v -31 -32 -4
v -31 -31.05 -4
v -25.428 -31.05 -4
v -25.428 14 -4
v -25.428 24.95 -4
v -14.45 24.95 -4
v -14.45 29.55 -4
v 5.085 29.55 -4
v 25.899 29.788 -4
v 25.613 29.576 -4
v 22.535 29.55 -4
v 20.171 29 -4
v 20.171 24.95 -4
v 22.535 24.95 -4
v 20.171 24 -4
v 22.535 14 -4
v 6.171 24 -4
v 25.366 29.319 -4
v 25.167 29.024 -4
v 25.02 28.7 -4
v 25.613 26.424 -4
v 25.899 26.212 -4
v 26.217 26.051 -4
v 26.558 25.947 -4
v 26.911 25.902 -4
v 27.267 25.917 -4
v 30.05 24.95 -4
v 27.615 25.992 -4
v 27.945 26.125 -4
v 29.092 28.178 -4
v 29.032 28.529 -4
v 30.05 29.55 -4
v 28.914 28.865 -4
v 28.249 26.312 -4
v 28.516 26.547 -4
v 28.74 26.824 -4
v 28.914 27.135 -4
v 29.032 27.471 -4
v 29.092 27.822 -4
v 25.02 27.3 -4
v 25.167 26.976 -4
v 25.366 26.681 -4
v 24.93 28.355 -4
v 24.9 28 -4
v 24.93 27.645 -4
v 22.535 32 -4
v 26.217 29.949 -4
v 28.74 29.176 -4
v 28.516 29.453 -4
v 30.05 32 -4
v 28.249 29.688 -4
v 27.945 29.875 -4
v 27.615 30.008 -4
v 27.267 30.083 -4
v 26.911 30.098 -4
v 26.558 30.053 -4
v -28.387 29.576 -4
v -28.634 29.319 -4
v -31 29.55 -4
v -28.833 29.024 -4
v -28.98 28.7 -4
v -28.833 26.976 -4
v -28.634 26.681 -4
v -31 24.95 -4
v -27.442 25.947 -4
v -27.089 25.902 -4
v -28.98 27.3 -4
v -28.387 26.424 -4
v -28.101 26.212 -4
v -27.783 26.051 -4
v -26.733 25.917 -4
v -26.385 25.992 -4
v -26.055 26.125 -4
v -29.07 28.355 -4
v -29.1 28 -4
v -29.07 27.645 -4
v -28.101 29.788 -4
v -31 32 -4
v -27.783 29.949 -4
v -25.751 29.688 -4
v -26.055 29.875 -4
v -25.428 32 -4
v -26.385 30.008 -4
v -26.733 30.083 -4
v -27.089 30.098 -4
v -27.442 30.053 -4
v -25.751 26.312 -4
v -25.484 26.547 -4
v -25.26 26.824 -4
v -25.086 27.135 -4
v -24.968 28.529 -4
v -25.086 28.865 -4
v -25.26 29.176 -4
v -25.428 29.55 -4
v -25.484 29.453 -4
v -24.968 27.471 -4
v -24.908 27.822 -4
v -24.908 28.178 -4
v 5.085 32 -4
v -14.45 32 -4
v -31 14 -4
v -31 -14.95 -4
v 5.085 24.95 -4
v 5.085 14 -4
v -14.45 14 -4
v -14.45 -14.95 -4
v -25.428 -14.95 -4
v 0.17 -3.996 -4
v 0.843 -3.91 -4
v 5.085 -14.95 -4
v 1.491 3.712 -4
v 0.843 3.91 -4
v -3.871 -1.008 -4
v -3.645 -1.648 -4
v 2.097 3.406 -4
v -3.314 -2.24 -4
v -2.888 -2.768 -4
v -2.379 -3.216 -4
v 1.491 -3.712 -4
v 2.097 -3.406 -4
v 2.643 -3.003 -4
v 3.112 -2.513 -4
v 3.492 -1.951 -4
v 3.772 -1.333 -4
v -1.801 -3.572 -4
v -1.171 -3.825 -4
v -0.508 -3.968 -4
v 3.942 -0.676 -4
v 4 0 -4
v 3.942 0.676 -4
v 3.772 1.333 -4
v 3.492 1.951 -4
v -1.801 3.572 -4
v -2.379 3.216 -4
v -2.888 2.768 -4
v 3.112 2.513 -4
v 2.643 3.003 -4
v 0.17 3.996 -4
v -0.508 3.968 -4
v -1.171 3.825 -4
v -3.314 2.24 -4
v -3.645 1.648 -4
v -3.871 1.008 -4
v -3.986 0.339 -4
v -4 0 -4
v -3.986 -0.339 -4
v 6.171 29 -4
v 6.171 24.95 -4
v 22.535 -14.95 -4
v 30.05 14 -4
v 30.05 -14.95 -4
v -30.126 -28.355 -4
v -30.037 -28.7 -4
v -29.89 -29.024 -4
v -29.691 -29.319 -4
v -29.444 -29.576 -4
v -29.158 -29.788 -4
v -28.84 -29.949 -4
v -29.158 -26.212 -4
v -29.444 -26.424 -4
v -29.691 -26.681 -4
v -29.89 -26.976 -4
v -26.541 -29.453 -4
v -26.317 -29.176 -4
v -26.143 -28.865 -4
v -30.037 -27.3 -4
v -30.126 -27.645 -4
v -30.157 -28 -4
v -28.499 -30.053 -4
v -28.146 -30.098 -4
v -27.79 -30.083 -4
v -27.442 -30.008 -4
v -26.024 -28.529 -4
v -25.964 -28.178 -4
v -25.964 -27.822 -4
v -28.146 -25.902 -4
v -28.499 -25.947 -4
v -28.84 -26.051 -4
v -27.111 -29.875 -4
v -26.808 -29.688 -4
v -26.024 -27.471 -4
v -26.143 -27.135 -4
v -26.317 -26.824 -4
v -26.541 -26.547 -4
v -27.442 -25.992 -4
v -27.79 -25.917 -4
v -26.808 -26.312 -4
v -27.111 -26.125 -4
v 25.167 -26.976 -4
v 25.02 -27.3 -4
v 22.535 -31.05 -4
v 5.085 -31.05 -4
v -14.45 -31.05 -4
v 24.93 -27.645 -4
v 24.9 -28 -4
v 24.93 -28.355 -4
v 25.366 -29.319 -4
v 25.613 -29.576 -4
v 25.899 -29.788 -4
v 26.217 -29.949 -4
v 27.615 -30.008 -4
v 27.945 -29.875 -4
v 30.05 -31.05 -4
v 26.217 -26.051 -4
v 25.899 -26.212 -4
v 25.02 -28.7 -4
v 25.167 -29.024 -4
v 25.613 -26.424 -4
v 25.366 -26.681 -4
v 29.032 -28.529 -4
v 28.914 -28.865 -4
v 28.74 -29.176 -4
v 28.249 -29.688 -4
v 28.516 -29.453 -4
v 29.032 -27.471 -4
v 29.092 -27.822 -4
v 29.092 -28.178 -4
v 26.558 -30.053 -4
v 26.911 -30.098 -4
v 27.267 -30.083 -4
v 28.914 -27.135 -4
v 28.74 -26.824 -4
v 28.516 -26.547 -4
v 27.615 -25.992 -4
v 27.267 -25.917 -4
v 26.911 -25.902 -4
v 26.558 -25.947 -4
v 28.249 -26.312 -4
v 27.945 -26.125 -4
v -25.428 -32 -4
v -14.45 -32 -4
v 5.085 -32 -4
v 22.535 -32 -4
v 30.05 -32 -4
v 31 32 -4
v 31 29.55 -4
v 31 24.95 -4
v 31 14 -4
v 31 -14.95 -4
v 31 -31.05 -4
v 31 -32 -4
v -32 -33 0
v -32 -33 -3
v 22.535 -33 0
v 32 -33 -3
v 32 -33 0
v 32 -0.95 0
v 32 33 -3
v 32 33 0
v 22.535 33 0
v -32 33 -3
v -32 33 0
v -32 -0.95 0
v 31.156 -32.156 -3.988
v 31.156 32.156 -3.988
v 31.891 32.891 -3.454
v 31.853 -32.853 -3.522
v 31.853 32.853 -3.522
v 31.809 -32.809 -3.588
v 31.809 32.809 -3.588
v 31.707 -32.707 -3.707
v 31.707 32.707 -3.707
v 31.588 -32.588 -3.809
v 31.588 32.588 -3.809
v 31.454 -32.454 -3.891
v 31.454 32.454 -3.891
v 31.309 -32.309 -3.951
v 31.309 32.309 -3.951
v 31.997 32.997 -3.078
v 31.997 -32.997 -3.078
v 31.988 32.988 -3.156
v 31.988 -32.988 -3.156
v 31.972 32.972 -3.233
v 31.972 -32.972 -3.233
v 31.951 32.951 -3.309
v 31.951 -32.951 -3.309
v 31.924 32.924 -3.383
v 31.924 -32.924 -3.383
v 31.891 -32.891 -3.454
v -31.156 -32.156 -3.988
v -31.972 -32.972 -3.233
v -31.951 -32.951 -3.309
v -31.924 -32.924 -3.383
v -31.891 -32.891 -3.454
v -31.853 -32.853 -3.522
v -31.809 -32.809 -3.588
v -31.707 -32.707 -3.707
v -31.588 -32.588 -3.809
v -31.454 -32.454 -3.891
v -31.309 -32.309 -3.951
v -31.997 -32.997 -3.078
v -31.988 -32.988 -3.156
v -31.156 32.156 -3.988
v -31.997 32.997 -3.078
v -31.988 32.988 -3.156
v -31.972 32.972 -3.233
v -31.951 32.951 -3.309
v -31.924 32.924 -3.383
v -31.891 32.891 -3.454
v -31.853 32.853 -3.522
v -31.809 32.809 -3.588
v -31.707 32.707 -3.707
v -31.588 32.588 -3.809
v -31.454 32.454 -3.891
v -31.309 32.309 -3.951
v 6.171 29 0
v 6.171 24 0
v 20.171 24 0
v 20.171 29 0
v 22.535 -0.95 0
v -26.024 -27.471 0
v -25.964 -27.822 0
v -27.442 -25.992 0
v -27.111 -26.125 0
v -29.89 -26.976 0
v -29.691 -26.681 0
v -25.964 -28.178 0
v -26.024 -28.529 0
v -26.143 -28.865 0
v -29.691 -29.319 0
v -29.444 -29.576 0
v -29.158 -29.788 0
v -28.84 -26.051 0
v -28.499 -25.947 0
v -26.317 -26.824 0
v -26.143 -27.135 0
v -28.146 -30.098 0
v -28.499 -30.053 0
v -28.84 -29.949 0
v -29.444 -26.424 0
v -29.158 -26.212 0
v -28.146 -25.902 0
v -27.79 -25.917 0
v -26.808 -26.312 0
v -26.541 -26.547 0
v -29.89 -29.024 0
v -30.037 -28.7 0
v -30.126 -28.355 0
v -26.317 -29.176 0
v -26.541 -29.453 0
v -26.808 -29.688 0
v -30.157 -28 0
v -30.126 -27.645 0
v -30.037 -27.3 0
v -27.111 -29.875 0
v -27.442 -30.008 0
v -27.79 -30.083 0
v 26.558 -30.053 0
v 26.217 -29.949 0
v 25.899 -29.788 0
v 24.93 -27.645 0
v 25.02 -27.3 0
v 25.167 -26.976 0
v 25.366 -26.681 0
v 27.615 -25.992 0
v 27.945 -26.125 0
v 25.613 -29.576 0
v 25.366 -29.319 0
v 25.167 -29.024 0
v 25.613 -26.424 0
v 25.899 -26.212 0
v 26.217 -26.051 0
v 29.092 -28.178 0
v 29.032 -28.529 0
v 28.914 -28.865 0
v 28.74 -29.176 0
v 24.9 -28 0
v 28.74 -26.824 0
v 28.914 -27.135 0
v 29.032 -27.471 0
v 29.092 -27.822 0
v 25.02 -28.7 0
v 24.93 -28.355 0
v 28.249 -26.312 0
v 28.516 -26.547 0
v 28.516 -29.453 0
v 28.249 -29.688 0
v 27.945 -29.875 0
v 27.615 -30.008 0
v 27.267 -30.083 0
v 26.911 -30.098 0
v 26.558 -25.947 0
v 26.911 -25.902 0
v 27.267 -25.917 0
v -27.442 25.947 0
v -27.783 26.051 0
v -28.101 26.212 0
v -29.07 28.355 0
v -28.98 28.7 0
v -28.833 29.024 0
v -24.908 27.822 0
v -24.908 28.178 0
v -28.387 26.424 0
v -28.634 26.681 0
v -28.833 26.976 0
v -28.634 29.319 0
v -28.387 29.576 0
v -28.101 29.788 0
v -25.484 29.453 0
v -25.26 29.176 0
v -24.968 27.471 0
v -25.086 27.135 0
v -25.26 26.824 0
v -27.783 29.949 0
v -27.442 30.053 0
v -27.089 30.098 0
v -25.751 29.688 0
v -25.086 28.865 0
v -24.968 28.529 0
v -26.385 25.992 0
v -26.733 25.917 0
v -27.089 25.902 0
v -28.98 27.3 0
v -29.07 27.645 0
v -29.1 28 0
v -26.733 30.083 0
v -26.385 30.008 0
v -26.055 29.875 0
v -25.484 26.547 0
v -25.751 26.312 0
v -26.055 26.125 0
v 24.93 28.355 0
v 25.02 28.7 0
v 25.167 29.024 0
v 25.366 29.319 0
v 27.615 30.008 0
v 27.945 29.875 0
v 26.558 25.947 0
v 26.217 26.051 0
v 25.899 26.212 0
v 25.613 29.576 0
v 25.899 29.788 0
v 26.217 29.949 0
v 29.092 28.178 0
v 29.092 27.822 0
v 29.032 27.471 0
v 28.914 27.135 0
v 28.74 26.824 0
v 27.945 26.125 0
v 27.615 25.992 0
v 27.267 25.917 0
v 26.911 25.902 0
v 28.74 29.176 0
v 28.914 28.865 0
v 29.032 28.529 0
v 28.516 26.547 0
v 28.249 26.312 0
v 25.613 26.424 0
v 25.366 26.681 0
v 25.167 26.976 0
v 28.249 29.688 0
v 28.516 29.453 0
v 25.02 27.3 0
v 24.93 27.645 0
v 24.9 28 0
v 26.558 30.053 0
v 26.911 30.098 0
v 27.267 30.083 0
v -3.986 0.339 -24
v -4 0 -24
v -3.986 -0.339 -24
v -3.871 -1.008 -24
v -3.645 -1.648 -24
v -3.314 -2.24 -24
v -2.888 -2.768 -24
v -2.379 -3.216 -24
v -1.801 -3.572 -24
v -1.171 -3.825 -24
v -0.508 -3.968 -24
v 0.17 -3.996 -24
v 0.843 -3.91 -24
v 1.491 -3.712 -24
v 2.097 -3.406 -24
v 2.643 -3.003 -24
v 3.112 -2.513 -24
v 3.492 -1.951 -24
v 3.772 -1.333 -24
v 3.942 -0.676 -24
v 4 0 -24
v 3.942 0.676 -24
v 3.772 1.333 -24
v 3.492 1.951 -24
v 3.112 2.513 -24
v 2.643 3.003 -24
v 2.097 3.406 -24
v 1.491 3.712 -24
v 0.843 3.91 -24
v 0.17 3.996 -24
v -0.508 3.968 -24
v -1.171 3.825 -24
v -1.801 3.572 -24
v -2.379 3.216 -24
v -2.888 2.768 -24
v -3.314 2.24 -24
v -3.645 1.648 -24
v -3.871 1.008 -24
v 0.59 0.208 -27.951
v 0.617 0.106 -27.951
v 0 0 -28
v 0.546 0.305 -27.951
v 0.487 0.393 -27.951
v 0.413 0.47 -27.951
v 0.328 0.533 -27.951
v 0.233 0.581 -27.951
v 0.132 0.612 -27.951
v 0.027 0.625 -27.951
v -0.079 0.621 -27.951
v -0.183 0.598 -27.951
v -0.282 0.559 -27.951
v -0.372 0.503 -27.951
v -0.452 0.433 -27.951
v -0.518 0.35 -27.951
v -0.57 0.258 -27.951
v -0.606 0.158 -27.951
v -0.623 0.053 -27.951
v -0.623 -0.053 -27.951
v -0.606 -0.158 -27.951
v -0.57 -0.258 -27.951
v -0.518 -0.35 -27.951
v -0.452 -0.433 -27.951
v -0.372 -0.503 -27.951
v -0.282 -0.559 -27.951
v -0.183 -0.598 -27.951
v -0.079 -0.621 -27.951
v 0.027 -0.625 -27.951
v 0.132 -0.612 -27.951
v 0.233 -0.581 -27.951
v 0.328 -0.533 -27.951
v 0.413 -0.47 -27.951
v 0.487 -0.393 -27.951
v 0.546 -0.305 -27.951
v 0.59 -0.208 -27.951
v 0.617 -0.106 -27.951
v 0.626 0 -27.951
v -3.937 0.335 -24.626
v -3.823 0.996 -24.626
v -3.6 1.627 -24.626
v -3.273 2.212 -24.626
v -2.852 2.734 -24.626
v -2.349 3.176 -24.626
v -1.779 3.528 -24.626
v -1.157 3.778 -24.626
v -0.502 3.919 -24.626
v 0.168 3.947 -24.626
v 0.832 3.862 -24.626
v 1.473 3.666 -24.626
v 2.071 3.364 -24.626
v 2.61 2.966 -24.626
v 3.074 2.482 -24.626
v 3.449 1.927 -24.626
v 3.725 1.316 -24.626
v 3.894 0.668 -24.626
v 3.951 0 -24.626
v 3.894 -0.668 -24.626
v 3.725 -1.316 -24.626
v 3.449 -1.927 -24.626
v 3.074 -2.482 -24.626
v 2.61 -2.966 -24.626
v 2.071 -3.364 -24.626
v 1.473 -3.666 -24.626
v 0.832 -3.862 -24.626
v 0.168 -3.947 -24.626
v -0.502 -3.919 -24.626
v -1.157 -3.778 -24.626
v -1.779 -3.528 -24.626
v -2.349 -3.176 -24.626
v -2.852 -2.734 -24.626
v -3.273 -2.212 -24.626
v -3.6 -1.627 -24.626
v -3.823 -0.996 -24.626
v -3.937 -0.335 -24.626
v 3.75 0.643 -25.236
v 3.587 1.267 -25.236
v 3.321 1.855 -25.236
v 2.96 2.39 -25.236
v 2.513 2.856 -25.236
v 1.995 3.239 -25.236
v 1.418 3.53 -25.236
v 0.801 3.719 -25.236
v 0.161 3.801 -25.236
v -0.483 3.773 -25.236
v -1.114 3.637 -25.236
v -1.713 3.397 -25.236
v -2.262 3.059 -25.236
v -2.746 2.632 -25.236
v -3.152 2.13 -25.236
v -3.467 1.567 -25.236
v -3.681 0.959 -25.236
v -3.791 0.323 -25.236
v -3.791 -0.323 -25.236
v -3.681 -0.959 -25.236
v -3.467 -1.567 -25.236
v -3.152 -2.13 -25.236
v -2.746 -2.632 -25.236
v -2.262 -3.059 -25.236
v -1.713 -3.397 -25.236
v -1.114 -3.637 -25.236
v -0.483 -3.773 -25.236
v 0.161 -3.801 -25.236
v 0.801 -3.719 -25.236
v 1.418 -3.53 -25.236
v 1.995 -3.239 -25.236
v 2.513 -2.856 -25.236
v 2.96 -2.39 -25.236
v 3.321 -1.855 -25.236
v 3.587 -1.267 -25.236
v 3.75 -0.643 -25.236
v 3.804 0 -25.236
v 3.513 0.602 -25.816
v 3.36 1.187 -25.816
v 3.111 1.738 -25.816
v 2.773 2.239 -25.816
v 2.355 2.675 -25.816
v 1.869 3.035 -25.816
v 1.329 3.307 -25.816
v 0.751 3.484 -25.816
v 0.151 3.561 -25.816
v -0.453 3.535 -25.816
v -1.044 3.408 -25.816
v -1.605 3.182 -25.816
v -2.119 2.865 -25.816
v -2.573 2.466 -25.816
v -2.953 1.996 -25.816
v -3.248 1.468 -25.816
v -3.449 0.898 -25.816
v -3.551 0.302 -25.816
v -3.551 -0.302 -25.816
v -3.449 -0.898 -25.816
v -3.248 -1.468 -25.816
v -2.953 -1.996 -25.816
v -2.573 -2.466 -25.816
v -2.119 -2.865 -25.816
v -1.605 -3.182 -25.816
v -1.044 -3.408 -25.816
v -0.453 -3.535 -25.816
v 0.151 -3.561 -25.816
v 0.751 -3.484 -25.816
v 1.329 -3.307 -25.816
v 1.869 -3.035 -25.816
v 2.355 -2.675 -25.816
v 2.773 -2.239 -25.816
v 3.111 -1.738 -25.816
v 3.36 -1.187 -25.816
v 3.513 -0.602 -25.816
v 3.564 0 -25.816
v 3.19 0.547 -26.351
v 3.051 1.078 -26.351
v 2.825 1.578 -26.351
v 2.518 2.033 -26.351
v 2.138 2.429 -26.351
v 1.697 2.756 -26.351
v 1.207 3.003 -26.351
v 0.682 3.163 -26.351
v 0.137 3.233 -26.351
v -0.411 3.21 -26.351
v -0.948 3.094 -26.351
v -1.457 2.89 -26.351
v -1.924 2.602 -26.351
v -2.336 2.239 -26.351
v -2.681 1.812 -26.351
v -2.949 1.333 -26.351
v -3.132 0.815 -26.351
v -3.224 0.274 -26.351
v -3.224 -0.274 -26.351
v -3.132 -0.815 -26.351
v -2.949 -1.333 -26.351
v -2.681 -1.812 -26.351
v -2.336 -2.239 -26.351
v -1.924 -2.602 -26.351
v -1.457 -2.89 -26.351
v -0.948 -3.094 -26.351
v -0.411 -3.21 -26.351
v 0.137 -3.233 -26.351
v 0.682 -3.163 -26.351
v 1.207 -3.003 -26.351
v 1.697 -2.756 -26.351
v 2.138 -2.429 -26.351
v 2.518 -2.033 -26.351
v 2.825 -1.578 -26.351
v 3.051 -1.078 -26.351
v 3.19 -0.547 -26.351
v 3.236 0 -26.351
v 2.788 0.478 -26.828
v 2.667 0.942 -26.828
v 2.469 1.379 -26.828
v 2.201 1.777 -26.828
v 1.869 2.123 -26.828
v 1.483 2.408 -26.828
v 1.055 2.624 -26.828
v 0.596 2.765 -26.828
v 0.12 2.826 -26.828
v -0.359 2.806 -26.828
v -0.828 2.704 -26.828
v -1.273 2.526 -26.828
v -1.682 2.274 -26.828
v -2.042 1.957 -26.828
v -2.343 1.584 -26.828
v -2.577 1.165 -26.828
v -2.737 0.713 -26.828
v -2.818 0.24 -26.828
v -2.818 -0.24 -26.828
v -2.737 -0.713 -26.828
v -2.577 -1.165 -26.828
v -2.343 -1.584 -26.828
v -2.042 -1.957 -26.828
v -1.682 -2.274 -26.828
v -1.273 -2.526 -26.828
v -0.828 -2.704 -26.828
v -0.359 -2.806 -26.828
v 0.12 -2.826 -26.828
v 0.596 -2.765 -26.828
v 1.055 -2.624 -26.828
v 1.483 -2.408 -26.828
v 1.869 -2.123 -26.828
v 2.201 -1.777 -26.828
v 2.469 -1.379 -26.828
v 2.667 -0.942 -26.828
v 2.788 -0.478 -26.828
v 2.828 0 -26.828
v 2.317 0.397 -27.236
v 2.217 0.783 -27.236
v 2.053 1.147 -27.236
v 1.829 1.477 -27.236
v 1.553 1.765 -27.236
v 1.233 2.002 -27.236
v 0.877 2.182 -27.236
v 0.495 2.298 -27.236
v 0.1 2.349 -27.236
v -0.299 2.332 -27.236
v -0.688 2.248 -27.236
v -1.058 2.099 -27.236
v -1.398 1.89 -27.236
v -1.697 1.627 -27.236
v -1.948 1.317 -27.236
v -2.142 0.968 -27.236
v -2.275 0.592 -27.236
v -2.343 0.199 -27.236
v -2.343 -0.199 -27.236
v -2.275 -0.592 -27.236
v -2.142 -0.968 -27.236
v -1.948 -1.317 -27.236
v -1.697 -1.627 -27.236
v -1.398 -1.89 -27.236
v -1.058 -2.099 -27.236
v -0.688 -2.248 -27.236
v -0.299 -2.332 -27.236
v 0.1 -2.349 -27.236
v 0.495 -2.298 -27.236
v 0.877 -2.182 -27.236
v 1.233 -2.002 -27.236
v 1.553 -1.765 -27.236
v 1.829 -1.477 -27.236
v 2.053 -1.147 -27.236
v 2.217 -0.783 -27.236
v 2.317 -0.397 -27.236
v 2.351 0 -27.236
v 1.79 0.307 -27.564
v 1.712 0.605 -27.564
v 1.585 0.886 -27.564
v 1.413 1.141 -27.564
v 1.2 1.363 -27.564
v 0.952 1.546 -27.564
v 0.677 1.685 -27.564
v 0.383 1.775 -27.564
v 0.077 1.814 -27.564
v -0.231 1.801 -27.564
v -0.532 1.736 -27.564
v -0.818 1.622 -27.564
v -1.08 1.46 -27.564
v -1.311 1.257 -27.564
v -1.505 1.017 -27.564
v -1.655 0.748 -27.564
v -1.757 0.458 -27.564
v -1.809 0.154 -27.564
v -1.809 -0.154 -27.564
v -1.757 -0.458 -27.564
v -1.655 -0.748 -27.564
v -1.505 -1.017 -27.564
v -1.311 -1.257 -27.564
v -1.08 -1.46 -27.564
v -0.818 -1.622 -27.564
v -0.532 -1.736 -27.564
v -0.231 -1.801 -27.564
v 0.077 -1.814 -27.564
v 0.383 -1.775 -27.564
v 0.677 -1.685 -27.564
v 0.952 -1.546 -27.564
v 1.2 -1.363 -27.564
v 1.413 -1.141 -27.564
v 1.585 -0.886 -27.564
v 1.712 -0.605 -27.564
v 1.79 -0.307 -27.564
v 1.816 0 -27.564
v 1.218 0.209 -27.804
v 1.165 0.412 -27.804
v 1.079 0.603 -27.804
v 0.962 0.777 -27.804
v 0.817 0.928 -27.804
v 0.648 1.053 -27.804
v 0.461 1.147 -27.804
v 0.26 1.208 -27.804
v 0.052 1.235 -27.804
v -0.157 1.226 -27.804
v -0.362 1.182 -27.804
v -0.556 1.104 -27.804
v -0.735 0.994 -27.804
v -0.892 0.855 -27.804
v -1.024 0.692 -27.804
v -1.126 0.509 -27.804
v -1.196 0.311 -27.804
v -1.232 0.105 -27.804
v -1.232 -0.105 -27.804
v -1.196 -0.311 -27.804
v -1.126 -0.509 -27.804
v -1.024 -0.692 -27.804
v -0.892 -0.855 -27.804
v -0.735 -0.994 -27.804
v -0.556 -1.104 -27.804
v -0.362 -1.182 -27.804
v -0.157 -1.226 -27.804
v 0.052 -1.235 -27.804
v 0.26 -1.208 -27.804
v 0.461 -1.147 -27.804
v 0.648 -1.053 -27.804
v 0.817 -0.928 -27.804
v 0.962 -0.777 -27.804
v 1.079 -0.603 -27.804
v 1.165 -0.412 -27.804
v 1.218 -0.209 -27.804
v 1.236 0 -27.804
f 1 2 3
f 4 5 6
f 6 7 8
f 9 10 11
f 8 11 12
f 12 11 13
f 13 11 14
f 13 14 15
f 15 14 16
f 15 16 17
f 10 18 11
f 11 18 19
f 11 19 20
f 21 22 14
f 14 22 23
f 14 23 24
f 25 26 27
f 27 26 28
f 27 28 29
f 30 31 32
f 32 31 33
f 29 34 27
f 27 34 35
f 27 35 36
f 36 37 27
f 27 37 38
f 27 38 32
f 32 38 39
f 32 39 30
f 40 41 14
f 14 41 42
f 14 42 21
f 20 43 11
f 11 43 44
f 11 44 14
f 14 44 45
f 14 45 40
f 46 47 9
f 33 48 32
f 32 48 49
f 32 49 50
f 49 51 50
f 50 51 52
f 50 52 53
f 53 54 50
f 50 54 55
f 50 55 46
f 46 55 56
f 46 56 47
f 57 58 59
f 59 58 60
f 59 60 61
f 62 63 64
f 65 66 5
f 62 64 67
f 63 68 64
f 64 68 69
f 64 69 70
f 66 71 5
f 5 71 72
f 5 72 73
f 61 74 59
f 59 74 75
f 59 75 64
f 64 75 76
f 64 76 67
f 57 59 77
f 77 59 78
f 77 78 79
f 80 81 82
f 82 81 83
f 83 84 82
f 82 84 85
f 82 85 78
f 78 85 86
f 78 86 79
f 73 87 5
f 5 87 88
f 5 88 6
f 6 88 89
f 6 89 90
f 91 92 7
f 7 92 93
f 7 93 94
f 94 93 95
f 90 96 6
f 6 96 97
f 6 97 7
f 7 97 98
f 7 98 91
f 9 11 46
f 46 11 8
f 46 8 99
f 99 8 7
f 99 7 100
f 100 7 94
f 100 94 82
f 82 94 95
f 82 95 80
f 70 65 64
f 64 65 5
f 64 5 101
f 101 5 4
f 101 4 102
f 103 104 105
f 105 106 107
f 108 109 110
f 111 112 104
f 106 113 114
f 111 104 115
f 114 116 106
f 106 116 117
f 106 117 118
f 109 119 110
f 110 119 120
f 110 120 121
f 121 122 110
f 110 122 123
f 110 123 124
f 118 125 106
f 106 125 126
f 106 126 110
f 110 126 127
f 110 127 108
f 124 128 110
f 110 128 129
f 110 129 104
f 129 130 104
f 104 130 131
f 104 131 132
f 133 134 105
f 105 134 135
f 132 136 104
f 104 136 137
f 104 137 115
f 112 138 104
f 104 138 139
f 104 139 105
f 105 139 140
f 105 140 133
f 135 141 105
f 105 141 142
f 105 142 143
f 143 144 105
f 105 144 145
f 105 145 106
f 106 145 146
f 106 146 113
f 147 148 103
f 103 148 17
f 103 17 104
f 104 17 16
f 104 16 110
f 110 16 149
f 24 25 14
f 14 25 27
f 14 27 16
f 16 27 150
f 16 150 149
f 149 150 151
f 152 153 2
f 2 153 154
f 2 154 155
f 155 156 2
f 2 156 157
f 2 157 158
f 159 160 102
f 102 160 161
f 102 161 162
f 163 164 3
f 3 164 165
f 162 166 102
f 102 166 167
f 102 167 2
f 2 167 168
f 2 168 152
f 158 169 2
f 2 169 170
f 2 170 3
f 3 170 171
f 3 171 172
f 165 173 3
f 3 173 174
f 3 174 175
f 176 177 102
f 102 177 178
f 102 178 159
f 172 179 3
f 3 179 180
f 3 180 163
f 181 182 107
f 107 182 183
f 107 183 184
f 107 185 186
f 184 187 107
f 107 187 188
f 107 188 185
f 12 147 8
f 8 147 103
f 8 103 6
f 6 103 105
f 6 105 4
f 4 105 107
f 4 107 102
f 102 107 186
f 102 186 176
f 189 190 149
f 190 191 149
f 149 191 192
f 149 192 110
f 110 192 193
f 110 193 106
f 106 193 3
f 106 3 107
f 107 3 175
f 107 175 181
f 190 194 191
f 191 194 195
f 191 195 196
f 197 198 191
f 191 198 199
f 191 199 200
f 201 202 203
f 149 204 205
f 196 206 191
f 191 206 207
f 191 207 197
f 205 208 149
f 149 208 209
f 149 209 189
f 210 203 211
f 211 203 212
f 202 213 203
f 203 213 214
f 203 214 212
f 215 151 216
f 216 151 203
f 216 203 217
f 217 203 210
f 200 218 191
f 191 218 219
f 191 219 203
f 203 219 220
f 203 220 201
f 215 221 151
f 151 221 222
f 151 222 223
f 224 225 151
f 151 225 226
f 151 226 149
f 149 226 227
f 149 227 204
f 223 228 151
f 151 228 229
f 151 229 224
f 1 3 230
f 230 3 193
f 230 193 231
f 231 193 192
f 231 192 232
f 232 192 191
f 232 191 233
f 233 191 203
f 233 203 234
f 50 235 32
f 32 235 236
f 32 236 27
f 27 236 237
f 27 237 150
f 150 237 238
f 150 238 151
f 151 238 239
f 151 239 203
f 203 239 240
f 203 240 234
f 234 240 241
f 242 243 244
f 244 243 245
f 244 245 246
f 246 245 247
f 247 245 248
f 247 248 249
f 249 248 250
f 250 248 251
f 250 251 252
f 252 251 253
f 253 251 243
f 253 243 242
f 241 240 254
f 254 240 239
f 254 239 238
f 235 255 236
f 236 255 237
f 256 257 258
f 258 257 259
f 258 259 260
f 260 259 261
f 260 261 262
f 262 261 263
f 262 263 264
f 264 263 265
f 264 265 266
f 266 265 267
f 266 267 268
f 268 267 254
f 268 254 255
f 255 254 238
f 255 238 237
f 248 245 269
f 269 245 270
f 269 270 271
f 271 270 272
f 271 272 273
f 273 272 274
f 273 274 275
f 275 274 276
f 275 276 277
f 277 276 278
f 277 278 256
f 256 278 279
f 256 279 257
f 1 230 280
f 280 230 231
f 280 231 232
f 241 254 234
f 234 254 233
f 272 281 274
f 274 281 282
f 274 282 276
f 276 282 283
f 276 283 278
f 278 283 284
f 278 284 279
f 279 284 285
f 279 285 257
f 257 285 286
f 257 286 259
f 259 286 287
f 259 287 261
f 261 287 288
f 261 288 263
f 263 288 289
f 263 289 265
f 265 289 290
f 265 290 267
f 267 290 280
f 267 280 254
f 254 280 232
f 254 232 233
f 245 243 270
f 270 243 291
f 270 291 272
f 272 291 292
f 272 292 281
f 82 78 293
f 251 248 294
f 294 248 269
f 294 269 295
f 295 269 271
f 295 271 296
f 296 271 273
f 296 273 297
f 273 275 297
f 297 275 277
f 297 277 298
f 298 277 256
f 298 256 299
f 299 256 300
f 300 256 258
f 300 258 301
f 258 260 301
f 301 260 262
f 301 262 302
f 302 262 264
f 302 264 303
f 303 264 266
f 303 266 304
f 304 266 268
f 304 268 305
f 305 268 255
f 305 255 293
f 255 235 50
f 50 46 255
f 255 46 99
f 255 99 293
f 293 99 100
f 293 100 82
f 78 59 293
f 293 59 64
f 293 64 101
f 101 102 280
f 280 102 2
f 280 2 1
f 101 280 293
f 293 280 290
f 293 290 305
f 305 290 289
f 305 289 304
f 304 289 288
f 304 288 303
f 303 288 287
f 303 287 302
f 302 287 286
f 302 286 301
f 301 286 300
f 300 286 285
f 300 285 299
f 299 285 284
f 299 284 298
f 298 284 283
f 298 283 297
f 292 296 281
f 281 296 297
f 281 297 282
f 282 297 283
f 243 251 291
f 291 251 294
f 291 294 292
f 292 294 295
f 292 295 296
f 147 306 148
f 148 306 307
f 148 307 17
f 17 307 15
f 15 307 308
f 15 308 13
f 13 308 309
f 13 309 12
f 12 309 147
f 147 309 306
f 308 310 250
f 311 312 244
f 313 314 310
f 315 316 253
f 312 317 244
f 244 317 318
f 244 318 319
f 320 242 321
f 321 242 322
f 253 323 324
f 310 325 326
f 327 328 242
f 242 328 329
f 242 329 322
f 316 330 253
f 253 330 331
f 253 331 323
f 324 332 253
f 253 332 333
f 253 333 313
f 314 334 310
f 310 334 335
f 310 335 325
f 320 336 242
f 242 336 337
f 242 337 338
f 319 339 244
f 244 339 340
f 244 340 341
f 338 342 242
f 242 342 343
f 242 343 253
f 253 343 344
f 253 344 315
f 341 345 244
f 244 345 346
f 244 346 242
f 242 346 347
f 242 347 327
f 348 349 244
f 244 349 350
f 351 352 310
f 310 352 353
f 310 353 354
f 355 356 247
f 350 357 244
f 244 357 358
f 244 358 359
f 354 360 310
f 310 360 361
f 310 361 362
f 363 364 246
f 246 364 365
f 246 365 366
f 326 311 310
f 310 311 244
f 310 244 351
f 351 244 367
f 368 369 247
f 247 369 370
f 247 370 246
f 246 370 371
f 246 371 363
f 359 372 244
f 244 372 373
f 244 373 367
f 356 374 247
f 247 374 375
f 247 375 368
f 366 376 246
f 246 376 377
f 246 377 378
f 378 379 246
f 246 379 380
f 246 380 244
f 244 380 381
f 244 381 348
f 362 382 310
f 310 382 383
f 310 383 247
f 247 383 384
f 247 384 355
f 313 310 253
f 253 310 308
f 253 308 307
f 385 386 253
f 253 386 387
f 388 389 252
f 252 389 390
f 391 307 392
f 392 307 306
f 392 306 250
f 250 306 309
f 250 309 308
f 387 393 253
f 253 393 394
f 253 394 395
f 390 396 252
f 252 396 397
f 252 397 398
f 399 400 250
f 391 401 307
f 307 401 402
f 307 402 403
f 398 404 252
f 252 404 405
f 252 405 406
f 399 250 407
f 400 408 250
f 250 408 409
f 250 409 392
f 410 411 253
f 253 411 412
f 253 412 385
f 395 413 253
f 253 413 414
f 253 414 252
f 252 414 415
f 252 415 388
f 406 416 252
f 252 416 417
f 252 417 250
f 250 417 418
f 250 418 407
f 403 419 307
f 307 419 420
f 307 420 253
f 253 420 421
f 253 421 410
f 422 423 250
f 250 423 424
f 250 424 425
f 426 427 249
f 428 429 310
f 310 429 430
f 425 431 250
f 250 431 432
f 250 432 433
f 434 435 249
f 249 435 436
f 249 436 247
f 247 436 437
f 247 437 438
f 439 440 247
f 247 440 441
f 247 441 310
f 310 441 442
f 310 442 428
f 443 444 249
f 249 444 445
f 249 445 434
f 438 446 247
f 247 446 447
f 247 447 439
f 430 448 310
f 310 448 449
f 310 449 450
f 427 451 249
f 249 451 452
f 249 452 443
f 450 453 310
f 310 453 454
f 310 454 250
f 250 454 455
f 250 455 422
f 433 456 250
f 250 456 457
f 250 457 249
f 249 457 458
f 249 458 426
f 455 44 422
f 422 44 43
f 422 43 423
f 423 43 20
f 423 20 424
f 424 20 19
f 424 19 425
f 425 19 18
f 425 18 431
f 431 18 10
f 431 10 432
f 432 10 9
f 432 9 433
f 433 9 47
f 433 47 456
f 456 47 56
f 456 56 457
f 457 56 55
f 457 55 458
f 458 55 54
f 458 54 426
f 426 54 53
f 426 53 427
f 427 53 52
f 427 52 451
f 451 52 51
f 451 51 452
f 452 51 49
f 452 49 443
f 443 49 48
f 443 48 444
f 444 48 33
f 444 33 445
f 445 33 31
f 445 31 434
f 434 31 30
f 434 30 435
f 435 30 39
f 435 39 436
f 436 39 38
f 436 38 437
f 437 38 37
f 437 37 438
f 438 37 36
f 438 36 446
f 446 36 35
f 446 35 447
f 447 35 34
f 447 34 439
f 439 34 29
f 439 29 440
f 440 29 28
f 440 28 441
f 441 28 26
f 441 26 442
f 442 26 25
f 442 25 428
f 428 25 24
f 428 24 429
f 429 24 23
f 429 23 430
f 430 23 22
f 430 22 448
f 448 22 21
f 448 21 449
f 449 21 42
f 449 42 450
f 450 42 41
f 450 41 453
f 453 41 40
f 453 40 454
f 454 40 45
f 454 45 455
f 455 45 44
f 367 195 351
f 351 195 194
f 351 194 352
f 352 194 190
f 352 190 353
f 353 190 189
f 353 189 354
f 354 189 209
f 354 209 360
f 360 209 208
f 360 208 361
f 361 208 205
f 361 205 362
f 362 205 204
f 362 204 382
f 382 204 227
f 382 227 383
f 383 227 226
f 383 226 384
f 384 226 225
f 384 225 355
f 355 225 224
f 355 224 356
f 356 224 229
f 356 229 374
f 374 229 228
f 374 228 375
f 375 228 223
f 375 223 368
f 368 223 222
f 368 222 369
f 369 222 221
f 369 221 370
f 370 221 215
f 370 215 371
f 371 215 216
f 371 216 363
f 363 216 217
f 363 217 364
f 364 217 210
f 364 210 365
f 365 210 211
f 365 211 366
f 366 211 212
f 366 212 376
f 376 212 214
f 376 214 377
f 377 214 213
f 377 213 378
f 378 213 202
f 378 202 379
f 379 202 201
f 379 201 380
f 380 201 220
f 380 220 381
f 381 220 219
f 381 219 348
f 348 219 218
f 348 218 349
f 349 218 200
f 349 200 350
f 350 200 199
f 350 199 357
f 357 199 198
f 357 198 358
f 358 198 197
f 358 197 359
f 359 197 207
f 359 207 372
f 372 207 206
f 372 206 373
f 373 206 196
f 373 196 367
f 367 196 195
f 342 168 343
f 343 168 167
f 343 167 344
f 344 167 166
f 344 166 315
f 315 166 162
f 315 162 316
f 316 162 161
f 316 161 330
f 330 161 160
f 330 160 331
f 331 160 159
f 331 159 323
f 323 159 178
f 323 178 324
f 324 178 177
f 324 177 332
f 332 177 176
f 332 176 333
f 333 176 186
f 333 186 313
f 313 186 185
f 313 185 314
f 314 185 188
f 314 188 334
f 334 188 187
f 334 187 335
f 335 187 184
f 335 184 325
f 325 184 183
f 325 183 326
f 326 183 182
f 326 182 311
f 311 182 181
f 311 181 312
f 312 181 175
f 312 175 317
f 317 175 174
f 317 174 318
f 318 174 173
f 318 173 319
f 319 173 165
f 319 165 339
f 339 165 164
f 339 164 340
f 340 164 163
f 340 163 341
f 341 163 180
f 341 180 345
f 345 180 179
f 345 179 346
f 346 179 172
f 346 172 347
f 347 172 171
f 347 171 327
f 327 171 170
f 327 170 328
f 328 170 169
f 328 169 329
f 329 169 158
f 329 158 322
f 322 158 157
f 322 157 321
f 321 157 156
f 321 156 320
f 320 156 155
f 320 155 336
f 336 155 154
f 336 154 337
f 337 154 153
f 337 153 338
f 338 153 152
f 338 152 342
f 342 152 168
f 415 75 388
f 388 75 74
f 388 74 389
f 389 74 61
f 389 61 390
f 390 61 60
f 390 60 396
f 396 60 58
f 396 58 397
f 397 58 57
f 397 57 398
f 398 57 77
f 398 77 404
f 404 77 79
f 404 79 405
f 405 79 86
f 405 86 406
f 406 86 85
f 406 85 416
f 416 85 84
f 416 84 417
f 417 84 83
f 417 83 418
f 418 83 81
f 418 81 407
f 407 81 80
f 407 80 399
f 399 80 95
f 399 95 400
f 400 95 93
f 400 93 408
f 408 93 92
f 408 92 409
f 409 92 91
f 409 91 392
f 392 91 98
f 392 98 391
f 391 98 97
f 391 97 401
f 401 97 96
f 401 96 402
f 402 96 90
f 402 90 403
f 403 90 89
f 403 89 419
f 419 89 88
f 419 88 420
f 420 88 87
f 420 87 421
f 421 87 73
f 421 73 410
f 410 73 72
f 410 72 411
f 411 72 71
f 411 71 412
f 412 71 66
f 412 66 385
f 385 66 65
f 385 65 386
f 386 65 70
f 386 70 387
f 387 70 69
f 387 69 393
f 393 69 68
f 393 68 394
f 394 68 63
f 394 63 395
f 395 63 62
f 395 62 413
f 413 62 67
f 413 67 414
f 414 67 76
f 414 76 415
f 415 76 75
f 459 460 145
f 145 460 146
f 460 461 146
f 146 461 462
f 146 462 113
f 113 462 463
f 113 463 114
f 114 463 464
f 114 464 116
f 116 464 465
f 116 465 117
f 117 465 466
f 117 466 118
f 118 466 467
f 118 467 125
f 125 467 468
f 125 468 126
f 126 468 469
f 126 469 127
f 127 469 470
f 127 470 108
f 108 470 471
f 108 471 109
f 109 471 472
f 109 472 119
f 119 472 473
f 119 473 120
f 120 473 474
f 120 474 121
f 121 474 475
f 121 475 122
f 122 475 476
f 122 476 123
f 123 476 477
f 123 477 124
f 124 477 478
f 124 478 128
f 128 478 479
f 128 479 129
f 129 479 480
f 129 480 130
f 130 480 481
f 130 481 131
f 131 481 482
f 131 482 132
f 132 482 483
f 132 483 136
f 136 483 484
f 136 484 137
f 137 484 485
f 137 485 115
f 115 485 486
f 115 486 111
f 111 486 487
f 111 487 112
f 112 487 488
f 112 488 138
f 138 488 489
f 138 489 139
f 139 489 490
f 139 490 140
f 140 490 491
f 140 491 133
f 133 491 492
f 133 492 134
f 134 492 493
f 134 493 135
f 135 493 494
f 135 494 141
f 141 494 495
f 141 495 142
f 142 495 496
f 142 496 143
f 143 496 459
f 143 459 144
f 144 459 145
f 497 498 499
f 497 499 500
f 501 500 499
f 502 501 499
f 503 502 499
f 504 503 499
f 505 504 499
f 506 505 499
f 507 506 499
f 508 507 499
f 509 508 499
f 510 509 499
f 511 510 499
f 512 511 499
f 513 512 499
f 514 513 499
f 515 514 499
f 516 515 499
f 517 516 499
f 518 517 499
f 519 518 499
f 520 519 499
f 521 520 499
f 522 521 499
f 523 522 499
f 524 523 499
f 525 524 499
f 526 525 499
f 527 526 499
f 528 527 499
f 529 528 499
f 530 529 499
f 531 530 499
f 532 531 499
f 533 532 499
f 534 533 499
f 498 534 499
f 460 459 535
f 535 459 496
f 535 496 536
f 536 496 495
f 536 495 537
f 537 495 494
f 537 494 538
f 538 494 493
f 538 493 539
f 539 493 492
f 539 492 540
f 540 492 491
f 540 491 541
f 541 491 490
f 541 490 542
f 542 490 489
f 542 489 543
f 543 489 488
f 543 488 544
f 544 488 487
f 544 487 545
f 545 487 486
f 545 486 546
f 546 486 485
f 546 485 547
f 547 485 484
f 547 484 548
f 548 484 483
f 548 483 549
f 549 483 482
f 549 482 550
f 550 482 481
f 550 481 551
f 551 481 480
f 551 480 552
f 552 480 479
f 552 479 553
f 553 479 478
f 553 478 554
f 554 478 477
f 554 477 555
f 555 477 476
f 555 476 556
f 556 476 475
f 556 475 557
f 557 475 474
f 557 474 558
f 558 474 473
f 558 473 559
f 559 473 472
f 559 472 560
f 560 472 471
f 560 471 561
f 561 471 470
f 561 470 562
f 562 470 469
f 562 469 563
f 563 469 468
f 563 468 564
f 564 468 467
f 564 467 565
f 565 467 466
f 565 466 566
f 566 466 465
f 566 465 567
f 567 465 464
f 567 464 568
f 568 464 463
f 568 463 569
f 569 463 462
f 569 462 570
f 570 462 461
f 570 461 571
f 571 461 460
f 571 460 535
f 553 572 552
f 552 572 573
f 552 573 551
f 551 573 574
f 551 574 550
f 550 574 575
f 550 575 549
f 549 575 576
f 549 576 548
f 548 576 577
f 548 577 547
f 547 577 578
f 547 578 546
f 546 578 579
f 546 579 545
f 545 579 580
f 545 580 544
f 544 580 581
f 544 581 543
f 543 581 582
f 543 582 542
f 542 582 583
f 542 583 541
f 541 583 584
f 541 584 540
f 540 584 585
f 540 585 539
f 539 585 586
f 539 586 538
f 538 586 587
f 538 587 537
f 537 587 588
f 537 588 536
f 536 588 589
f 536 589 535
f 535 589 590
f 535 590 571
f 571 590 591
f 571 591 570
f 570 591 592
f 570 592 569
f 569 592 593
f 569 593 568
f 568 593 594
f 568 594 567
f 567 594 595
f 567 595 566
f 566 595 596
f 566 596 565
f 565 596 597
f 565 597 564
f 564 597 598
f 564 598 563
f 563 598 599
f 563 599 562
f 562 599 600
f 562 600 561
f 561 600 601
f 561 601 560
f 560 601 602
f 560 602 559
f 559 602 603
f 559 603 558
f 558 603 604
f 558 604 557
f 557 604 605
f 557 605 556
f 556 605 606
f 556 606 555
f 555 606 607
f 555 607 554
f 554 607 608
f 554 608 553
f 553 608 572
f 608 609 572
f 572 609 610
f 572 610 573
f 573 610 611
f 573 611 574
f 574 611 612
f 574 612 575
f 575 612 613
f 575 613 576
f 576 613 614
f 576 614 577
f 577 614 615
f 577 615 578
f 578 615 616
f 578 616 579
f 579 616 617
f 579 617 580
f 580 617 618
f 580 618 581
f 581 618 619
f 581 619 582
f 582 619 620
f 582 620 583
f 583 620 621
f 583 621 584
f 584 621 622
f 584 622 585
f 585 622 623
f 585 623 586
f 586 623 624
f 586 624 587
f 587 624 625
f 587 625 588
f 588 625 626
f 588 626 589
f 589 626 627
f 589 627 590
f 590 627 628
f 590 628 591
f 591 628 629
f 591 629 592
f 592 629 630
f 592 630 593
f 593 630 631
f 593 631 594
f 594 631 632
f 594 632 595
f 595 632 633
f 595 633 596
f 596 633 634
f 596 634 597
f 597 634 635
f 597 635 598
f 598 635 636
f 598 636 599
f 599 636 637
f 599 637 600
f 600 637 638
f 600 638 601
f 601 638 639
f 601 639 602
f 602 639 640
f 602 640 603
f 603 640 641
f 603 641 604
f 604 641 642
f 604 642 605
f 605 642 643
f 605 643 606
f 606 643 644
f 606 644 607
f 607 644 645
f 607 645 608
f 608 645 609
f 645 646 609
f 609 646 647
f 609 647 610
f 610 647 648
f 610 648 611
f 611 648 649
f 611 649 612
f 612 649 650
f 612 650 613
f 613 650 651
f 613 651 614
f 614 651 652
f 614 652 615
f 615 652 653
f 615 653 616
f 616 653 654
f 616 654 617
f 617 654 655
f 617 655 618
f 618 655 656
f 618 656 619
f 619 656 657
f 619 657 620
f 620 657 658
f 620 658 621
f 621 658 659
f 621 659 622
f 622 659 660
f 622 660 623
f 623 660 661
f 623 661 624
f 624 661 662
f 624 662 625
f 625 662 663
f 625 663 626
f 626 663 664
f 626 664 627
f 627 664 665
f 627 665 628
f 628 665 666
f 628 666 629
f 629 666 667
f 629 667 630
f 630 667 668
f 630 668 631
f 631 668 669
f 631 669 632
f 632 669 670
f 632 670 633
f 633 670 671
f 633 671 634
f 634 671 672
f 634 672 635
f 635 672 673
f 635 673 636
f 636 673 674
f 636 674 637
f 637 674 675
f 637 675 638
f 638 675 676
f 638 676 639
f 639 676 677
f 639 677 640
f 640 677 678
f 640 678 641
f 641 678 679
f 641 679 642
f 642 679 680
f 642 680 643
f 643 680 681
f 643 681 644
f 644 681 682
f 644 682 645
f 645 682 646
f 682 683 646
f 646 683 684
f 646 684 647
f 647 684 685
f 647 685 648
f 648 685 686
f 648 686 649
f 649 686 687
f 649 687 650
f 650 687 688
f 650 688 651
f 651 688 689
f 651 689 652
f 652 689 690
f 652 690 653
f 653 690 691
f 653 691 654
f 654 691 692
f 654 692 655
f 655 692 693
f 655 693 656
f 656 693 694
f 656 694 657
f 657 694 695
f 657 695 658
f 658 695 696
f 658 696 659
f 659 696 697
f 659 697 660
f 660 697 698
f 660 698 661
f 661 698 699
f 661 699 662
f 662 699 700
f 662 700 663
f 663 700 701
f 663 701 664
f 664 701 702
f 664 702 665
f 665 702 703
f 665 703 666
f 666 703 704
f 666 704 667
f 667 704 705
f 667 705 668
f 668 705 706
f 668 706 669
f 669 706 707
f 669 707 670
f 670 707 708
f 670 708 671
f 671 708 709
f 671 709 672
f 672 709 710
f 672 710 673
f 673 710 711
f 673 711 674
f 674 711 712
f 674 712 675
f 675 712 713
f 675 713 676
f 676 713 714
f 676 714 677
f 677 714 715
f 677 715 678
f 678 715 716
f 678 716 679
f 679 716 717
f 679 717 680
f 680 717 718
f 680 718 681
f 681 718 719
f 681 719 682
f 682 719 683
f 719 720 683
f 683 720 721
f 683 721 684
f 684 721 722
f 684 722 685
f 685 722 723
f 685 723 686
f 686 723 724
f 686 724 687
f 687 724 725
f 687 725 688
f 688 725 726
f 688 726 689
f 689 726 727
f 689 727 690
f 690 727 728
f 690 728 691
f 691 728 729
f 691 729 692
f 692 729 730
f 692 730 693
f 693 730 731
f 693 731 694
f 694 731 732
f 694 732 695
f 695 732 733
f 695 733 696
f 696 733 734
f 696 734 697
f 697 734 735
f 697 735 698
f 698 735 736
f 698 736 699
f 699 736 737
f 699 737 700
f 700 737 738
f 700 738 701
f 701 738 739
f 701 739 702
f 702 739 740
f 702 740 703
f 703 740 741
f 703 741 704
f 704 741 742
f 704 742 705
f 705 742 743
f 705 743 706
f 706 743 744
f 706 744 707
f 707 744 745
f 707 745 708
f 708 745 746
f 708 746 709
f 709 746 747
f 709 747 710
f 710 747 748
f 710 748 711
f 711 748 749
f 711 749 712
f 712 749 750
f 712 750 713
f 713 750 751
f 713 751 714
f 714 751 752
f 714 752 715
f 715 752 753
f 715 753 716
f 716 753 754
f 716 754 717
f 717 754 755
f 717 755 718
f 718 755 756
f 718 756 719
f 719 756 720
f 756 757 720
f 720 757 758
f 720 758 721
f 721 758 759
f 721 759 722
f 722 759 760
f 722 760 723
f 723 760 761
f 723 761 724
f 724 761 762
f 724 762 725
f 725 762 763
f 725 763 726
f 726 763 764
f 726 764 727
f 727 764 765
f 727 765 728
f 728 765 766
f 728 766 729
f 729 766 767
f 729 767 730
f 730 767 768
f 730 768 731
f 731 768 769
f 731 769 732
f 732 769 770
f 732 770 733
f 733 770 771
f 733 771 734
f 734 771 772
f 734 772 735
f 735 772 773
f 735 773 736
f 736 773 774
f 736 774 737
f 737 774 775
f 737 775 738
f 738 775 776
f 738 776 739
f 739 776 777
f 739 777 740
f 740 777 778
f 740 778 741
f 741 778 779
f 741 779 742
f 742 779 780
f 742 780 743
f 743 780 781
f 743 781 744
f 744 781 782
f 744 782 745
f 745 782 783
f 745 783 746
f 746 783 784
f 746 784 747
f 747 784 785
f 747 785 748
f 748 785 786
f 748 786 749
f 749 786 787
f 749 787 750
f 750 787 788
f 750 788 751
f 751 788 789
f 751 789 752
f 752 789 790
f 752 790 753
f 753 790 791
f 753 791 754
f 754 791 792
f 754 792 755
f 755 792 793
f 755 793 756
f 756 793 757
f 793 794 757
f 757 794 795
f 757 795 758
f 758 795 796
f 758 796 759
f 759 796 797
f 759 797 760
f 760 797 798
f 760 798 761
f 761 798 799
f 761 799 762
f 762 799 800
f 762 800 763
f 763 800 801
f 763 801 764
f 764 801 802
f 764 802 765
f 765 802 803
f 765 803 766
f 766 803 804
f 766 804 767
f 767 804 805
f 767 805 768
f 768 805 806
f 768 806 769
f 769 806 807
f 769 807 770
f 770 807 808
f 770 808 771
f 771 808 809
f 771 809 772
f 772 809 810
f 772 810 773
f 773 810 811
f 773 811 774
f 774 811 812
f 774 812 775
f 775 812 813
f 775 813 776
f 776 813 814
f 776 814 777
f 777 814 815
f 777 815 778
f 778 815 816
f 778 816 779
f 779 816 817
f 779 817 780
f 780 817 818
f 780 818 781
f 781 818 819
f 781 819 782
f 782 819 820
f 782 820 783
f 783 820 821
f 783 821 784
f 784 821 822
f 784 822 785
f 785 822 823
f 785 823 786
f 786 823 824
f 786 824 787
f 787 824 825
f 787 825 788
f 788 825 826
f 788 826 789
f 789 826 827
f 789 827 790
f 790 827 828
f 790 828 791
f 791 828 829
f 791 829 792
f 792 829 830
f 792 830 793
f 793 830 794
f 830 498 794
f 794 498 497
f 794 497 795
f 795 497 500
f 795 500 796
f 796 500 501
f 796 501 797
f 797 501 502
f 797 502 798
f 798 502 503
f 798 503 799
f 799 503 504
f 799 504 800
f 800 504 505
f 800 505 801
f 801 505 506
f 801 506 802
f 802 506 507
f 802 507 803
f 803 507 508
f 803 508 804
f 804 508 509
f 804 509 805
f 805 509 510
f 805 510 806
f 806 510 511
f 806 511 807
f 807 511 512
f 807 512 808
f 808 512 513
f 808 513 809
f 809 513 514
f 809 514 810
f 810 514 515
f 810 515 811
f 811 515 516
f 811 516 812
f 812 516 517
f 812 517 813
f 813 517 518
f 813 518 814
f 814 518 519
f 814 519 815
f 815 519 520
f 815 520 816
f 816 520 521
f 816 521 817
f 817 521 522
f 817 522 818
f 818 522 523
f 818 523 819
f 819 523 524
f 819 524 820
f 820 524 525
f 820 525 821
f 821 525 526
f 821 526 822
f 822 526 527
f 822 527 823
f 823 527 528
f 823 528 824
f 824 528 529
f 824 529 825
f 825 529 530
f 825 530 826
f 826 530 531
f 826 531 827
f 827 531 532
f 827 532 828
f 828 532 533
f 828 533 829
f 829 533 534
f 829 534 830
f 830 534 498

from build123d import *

# Parameters (mm, degrees)
SKETCH1_R           = 21
BOSS_EXTRUDE1_DEPTH = 8
SKETCH2_R           = 2
CUT_EXTRUDE1_DEPTH  = 10
SKETCH4_R           = 1.1
CUT_EXTRUDE2_DEPTH  = 10
SKETCH5_R           = 1.1
CUT_EXTRUDE3_DEPTH  = 10
SKETCH11_W          = 64
SKETCH11_H          = 66
BOSS_EXTRUDE3_DEPTH = 4
FILLET12_R          = 1
SKETCH16_W          = 14
SKETCH16_H          = 5
CUT_EXTRUDE7_DEPTH  = 22
SKETCH17_R          = 21
CUT_EXTRUDE9_DEPTH  = 8
SKETCH18_R          = 2.1
CUT_EXTRUDE10_DEPTH = 12
SKETCH19_R          = 4
BOSS_EXTRUDE4_DEPTH = 20


with BuildPart() as part:
    # Sketch1 → Boss-Extrude1 (new body)
    with BuildSketch(Plane.XY):
        Circle(SKETCH1_R)
    extrude(amount=BOSS_EXTRUDE1_DEPTH)

    # Sketch2 → Cut-Extrude1 (cut)
    with BuildSketch(Plane(origin=(0, 0, 0), x_dir=(-1, 0, 0), z_dir=(0, 0, -1))):
        Circle(SKETCH2_R)
    extrude(amount=-CUT_EXTRUDE1_DEPTH, mode=Mode.SUBTRACT)

    # Sketch4 → Cut-Extrude2 (cut)
    with BuildSketch(Plane(origin=(0, 0, 0), x_dir=(-1, 0, 0), z_dir=(0, 0, -1))):
        with Locations((16, 0)):
            Circle(SKETCH4_R)
    extrude(amount=-CUT_EXTRUDE2_DEPTH, mode=Mode.SUBTRACT)

    # Sketch5 → Cut-Extrude3 (cut)
    with BuildSketch(Plane(origin=(0, 0, 0), x_dir=(-1, 0, 0), z_dir=(0, 0, -1))):
        with Locations((-16, 0)):
            Circle(SKETCH5_R)
    extrude(amount=-CUT_EXTRUDE3_DEPTH, mode=Mode.SUBTRACT)

    # Sketch11 → Boss-Extrude3 (add)
    with BuildSketch(Plane(origin=(0, 0, 0), x_dir=(-1, 0, 0), z_dir=(0, 0, -1))):
        Rectangle(SKETCH11_W, SKETCH11_H)
    extrude(amount=BOSS_EXTRUDE3_DEPTH)

    # Fillet12
    fillet12_edges = [part.edges().sort_by_distance(p)[0] for p in [
        (-32, 0, -4),
        (0, 33, -4),
        (32, 0, -4),
        (0, -33, -4),
    ]]
    fillet(fillet12_edges, radius=FILLET12_R)

    # Sketch16 → Cut-Extrude7 (cut)
    with BuildSketch(Plane(origin=(0, 0, -4), x_dir=(-1, 0, 0), z_dir=(0, 0, -1))):
        with Locations((-13.170947401, 26.5)):
            Rectangle(SKETCH16_W, SKETCH16_H)
    extrude(amount=-CUT_EXTRUDE7_DEPTH, mode=Mode.SUBTRACT)

    # Sketch17 → Cut-Extrude9 (cut)
    with BuildSketch(Plane.XY.offset(8)):
        Circle(SKETCH17_R)
    extrude(amount=-CUT_EXTRUDE9_DEPTH, mode=Mode.SUBTRACT)

    # Sketch18 → Cut-Extrude10 (cut)
    with BuildSketch(Plane(origin=(0, 0, -4), x_dir=(-1, 0, 0), z_dir=(0, 0, -1))):
        with Locations((-27, 28)):
            Circle(SKETCH18_R)
        with Locations((-27, -28)):
            Circle(SKETCH18_R)
        with Locations((28.056628896, -28)):
            Circle(SKETCH18_R)
        with Locations((27, 28)):
            Circle(SKETCH18_R)
    extrude(amount=-CUT_EXTRUDE10_DEPTH, mode=Mode.SUBTRACT)

    # Sketch19 → Boss-Extrude4 (add)
    with BuildSketch(Plane(origin=(0, 0, -4), x_dir=(-1, 0, 0), z_dir=(0, 0, -1))):
        Circle(SKETCH19_R)
    extrude(amount=BOSS_EXTRUDE4_DEPTH)

    # Sketch20 → Revolve1 (revolve)
    with BuildSketch(Plane(origin=(0, 0, 0), x_dir=(1, 0, 0), z_dir=(0, 1, 0))):
        with BuildLine():
            Line((0, 24), (-4, 24))
            ThreePointArc((-4, 24), (-2.828427125, 26.828427125), (0, 28))
            Line((0, 28), (0, 24))
        make_face()
    revolve(axis=Axis((0, 0, -24), (0, 0, -1)))


solid = part.part
